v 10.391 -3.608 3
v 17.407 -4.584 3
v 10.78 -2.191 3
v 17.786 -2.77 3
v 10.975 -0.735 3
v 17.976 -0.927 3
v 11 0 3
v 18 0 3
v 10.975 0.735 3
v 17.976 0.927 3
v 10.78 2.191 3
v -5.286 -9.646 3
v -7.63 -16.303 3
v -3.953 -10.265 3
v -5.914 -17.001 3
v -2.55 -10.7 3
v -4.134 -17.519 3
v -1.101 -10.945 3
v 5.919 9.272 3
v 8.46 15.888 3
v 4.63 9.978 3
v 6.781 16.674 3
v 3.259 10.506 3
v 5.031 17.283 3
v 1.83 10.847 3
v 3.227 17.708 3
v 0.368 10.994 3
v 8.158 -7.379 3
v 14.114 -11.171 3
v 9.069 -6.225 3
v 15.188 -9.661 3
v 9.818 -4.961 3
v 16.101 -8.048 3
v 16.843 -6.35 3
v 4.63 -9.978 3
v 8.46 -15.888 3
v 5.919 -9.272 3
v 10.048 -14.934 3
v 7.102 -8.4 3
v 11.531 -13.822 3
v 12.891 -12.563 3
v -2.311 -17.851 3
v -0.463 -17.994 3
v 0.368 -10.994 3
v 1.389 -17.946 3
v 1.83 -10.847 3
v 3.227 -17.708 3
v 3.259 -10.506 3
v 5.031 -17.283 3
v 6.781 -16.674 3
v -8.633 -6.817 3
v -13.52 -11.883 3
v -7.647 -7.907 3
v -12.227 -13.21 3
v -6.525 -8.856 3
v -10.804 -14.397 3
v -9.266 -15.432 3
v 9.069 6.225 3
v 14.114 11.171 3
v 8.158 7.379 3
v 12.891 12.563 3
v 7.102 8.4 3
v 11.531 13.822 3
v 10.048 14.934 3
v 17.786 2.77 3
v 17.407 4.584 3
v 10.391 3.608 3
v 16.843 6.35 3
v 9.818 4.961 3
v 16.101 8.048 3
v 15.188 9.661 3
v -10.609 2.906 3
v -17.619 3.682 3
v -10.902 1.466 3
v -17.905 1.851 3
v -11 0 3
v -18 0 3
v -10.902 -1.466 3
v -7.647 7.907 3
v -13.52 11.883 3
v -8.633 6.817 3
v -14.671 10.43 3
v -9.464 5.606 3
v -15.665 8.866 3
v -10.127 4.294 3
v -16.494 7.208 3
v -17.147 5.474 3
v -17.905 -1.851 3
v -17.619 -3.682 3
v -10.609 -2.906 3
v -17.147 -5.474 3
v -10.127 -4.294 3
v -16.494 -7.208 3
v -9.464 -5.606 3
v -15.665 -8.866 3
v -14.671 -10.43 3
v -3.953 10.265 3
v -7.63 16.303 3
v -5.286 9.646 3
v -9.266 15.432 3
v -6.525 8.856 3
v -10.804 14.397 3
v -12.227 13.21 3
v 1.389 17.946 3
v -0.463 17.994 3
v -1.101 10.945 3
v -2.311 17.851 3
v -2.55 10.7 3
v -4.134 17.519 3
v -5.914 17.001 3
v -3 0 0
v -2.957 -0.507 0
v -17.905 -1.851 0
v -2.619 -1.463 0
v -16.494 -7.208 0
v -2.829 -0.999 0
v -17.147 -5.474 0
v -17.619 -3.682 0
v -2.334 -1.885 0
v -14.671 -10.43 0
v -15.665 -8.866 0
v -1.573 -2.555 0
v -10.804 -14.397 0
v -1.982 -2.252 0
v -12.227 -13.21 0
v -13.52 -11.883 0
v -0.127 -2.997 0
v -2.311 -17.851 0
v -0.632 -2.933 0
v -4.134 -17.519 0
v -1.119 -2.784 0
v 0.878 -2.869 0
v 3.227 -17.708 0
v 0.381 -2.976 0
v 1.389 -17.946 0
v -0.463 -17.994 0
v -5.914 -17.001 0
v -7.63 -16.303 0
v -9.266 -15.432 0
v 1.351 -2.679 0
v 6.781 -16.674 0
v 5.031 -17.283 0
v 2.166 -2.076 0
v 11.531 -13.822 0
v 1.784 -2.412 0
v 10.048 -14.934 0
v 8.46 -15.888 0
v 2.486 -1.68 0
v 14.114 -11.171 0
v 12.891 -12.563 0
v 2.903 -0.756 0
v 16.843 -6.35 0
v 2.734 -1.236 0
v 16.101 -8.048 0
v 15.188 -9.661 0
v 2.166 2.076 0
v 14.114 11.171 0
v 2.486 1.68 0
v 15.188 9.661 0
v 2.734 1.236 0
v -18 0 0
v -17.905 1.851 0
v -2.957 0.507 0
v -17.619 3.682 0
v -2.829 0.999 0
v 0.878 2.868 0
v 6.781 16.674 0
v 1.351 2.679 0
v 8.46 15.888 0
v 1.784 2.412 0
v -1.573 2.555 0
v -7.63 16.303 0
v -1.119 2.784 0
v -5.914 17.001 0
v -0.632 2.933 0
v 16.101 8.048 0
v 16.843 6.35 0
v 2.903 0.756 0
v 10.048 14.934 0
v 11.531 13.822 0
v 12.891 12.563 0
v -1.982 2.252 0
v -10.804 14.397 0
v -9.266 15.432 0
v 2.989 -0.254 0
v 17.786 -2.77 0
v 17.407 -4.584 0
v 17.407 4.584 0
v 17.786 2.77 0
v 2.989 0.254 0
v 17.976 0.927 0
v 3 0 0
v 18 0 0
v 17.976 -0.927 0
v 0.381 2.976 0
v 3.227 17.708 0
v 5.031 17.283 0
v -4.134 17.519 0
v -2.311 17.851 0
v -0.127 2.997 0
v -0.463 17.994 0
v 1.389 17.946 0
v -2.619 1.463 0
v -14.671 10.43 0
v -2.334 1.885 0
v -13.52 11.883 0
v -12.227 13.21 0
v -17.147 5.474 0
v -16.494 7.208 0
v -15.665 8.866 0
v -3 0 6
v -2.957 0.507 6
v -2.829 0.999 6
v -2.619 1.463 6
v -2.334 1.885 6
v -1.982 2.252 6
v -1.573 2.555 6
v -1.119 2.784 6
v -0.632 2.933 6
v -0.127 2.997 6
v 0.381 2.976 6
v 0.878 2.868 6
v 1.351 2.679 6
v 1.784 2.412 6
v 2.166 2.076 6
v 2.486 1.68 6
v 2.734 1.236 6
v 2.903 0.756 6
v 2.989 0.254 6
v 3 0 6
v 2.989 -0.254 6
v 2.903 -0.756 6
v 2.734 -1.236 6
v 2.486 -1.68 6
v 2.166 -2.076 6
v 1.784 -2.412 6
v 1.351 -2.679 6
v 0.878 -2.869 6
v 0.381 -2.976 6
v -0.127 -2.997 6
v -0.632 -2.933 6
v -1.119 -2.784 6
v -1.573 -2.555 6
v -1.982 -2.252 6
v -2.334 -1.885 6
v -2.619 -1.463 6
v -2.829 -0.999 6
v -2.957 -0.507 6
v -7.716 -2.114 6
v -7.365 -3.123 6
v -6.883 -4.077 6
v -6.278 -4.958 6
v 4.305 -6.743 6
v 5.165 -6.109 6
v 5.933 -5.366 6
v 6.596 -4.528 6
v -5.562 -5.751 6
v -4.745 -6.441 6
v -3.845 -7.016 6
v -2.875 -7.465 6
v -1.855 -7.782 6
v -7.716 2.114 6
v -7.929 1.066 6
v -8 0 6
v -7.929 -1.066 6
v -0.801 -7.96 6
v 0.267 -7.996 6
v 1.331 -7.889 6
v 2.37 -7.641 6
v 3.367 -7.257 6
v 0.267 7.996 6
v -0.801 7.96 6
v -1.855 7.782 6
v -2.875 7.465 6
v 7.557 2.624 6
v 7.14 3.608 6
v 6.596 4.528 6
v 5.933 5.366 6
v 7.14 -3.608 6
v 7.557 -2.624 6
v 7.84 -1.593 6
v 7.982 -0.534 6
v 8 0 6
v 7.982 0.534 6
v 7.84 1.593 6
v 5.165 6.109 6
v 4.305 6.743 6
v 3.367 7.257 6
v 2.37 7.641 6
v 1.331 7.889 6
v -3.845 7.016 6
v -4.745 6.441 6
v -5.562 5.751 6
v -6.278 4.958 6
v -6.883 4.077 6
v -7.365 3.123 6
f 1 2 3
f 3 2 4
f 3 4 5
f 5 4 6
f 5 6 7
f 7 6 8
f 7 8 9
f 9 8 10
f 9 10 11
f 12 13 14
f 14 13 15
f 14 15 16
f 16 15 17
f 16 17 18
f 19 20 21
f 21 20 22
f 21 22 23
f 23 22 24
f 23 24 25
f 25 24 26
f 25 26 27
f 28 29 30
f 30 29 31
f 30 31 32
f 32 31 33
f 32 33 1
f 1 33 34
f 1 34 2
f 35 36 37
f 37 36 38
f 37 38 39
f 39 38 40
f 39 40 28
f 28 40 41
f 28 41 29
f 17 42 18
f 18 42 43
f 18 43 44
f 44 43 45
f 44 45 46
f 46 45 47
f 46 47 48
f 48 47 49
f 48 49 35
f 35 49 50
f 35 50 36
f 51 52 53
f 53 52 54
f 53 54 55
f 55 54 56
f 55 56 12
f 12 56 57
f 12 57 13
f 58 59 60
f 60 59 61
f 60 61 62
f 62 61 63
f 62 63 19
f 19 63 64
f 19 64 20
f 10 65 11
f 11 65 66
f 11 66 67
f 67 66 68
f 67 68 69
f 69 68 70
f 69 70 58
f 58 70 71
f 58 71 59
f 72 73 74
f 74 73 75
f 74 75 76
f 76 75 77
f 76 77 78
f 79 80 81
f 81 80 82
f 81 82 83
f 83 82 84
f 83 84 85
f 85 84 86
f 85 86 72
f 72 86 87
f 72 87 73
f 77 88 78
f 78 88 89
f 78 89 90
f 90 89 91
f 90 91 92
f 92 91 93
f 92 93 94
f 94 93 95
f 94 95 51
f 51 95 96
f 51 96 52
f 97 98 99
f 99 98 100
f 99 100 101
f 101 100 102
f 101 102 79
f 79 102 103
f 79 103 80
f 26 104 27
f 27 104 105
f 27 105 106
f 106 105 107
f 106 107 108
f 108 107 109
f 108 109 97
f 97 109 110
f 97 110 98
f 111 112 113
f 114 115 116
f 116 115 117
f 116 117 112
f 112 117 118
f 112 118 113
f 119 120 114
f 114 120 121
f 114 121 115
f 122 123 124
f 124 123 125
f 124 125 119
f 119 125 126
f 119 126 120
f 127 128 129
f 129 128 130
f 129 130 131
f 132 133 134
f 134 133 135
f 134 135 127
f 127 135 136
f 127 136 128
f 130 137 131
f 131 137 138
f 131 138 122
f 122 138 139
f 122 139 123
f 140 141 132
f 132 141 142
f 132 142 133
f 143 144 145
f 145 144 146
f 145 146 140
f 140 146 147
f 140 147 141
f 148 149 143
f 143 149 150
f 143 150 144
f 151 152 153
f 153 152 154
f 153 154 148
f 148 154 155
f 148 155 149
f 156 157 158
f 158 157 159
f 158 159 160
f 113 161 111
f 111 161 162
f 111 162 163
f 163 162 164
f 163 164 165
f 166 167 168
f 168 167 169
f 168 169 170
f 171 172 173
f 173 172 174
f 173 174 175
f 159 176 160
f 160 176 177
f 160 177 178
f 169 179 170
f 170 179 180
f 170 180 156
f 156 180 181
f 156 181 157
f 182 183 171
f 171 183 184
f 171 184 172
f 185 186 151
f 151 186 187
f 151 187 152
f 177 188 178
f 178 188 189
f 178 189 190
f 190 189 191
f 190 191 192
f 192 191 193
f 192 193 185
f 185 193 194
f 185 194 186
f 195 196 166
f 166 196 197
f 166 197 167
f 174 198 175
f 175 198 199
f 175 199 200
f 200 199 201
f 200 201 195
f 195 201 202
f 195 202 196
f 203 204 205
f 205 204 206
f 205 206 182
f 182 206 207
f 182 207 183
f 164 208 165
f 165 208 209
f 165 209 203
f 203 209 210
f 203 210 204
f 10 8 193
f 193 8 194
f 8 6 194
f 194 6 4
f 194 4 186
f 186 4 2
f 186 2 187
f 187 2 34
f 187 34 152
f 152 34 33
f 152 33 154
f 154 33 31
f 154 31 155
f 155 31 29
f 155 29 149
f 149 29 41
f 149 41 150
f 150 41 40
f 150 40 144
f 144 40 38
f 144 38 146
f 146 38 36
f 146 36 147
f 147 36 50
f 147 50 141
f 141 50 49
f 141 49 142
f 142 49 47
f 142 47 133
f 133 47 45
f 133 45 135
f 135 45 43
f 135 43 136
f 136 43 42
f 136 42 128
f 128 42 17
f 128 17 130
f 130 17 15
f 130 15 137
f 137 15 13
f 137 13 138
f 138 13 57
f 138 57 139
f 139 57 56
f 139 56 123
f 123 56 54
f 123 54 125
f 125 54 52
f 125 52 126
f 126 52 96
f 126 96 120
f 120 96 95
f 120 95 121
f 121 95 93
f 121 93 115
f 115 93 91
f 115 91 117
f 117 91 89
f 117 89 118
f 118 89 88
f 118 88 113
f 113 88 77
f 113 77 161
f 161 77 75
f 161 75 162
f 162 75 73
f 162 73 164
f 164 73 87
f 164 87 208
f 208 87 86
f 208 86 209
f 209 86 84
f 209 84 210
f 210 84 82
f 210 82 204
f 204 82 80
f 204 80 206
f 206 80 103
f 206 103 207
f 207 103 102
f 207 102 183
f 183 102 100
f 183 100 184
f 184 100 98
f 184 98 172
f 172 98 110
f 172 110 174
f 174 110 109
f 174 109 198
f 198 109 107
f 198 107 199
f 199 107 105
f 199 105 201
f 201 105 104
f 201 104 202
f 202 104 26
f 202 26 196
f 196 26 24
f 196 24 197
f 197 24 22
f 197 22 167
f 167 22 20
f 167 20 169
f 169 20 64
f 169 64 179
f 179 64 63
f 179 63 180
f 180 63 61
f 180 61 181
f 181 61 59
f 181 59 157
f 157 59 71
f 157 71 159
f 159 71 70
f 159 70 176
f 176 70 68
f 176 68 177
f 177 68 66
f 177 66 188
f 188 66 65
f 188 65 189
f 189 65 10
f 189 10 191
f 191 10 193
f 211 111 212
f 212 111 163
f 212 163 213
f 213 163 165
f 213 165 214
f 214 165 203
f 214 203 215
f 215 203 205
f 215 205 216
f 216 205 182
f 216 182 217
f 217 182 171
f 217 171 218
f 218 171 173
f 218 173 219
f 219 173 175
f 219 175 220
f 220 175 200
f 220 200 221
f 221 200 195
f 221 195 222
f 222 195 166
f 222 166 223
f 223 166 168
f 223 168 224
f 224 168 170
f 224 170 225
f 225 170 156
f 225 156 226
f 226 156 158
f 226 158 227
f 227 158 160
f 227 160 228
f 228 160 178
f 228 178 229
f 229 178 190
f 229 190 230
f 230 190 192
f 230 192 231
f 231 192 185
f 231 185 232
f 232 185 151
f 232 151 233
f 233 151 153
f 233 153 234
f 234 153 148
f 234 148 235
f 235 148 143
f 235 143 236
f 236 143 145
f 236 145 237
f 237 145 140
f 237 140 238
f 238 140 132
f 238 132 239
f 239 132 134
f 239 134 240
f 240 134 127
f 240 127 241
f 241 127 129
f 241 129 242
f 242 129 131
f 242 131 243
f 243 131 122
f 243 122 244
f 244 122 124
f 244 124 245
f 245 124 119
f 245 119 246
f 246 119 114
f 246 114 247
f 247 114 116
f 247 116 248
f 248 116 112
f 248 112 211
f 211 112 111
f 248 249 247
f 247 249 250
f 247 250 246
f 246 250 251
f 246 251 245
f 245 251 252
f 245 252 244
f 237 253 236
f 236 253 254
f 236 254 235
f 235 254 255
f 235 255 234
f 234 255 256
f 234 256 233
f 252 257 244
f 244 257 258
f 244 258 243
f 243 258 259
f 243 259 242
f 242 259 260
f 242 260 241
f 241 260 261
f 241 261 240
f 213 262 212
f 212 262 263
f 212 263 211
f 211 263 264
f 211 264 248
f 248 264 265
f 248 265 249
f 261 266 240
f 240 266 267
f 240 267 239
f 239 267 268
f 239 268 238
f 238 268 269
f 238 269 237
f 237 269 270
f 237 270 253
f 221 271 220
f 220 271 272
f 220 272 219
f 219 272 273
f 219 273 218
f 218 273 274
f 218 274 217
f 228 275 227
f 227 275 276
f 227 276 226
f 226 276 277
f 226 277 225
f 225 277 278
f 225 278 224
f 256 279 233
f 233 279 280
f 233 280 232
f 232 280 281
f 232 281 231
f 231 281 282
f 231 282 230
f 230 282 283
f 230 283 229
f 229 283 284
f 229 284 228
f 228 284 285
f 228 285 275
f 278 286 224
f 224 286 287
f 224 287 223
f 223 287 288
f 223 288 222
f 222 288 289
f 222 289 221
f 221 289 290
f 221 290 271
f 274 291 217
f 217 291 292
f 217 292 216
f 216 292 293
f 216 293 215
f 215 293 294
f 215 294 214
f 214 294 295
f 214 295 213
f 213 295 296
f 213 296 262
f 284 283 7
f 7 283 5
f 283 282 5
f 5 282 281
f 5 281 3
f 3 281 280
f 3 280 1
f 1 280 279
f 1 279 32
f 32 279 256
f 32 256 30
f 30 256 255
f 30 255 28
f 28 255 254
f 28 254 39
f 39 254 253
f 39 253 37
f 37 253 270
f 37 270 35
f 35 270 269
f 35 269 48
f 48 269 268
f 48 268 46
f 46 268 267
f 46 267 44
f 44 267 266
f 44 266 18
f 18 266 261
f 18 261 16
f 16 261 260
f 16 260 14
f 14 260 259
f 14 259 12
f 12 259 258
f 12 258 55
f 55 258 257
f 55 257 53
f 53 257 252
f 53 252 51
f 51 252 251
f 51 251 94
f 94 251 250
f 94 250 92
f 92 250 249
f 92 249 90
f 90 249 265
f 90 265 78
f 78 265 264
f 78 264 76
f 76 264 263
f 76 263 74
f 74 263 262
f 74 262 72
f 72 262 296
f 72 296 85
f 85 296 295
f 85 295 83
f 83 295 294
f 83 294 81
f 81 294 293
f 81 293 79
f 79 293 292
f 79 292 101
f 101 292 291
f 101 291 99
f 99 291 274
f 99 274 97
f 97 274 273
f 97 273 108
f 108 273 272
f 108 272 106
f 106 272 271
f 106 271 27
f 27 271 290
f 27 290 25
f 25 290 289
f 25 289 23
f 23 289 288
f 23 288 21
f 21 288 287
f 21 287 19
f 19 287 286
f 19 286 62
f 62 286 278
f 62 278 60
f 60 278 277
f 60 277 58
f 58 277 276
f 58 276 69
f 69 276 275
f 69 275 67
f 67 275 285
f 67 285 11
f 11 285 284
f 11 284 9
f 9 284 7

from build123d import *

# Parameters (mm, degrees)
ESQUISSE1_R        = 18
ESQUISSE1_R_2      = 3
BOSS_EXTRU_1_DEPTH = 3
ESQUISSE2_R        = 13
ESQUISSE2_R_2      = 3
BOSS_EXTRU_2_DEPTH = 3
CHANFREIN1_SIZE    = 5


with BuildPart() as part:
    # Esquisse1 → Boss.-Extru.1 (new body)
    with BuildSketch(Plane.XY):
        Circle(ESQUISSE1_R)
        Circle(ESQUISSE1_R_2, mode=Mode.SUBTRACT)
    extrude(amount=BOSS_EXTRU_1_DEPTH)

    # Esquisse2 → Boss.-Extru.2 (add)
    with BuildSketch(Plane.XY.offset(3)):
        Circle(ESQUISSE2_R)
        Circle(ESQUISSE2_R_2, mode=Mode.SUBTRACT)
    extrude(amount=BOSS_EXTRU_2_DEPTH)

    # Chanfrein1
    # the kernel refuses this chamfer: 5 mm, written as the material it takes off along each edge
    with BuildSketch(Plane(origin=(0, 0, 6), x_dir=(1, 0, 0), z_dir=(0, -1, 0))) as chanfrein1_piece_1_section:
        Polygon((13, -CHANFREIN1_SIZE), (13 - CHANFREIN1_SIZE, 0), (13, 0), align=None)
    chanfrein1_piece_1 = revolve(axis=Axis((0, 0, 6), (0, 0, 1)), mode=Mode.PRIVATE)
    chanfrein1_piece_1 = split(chanfrein1_piece_1, bisect_by=Plane(origin=(-9.494850826, 0, 3), z_dir=(0, 0, 1)), keep=Keep.TOP, mode=Mode.PRIVATE)
    add(chanfrein1_piece_1, mode=Mode.SUBTRACT)


solid = part.part
